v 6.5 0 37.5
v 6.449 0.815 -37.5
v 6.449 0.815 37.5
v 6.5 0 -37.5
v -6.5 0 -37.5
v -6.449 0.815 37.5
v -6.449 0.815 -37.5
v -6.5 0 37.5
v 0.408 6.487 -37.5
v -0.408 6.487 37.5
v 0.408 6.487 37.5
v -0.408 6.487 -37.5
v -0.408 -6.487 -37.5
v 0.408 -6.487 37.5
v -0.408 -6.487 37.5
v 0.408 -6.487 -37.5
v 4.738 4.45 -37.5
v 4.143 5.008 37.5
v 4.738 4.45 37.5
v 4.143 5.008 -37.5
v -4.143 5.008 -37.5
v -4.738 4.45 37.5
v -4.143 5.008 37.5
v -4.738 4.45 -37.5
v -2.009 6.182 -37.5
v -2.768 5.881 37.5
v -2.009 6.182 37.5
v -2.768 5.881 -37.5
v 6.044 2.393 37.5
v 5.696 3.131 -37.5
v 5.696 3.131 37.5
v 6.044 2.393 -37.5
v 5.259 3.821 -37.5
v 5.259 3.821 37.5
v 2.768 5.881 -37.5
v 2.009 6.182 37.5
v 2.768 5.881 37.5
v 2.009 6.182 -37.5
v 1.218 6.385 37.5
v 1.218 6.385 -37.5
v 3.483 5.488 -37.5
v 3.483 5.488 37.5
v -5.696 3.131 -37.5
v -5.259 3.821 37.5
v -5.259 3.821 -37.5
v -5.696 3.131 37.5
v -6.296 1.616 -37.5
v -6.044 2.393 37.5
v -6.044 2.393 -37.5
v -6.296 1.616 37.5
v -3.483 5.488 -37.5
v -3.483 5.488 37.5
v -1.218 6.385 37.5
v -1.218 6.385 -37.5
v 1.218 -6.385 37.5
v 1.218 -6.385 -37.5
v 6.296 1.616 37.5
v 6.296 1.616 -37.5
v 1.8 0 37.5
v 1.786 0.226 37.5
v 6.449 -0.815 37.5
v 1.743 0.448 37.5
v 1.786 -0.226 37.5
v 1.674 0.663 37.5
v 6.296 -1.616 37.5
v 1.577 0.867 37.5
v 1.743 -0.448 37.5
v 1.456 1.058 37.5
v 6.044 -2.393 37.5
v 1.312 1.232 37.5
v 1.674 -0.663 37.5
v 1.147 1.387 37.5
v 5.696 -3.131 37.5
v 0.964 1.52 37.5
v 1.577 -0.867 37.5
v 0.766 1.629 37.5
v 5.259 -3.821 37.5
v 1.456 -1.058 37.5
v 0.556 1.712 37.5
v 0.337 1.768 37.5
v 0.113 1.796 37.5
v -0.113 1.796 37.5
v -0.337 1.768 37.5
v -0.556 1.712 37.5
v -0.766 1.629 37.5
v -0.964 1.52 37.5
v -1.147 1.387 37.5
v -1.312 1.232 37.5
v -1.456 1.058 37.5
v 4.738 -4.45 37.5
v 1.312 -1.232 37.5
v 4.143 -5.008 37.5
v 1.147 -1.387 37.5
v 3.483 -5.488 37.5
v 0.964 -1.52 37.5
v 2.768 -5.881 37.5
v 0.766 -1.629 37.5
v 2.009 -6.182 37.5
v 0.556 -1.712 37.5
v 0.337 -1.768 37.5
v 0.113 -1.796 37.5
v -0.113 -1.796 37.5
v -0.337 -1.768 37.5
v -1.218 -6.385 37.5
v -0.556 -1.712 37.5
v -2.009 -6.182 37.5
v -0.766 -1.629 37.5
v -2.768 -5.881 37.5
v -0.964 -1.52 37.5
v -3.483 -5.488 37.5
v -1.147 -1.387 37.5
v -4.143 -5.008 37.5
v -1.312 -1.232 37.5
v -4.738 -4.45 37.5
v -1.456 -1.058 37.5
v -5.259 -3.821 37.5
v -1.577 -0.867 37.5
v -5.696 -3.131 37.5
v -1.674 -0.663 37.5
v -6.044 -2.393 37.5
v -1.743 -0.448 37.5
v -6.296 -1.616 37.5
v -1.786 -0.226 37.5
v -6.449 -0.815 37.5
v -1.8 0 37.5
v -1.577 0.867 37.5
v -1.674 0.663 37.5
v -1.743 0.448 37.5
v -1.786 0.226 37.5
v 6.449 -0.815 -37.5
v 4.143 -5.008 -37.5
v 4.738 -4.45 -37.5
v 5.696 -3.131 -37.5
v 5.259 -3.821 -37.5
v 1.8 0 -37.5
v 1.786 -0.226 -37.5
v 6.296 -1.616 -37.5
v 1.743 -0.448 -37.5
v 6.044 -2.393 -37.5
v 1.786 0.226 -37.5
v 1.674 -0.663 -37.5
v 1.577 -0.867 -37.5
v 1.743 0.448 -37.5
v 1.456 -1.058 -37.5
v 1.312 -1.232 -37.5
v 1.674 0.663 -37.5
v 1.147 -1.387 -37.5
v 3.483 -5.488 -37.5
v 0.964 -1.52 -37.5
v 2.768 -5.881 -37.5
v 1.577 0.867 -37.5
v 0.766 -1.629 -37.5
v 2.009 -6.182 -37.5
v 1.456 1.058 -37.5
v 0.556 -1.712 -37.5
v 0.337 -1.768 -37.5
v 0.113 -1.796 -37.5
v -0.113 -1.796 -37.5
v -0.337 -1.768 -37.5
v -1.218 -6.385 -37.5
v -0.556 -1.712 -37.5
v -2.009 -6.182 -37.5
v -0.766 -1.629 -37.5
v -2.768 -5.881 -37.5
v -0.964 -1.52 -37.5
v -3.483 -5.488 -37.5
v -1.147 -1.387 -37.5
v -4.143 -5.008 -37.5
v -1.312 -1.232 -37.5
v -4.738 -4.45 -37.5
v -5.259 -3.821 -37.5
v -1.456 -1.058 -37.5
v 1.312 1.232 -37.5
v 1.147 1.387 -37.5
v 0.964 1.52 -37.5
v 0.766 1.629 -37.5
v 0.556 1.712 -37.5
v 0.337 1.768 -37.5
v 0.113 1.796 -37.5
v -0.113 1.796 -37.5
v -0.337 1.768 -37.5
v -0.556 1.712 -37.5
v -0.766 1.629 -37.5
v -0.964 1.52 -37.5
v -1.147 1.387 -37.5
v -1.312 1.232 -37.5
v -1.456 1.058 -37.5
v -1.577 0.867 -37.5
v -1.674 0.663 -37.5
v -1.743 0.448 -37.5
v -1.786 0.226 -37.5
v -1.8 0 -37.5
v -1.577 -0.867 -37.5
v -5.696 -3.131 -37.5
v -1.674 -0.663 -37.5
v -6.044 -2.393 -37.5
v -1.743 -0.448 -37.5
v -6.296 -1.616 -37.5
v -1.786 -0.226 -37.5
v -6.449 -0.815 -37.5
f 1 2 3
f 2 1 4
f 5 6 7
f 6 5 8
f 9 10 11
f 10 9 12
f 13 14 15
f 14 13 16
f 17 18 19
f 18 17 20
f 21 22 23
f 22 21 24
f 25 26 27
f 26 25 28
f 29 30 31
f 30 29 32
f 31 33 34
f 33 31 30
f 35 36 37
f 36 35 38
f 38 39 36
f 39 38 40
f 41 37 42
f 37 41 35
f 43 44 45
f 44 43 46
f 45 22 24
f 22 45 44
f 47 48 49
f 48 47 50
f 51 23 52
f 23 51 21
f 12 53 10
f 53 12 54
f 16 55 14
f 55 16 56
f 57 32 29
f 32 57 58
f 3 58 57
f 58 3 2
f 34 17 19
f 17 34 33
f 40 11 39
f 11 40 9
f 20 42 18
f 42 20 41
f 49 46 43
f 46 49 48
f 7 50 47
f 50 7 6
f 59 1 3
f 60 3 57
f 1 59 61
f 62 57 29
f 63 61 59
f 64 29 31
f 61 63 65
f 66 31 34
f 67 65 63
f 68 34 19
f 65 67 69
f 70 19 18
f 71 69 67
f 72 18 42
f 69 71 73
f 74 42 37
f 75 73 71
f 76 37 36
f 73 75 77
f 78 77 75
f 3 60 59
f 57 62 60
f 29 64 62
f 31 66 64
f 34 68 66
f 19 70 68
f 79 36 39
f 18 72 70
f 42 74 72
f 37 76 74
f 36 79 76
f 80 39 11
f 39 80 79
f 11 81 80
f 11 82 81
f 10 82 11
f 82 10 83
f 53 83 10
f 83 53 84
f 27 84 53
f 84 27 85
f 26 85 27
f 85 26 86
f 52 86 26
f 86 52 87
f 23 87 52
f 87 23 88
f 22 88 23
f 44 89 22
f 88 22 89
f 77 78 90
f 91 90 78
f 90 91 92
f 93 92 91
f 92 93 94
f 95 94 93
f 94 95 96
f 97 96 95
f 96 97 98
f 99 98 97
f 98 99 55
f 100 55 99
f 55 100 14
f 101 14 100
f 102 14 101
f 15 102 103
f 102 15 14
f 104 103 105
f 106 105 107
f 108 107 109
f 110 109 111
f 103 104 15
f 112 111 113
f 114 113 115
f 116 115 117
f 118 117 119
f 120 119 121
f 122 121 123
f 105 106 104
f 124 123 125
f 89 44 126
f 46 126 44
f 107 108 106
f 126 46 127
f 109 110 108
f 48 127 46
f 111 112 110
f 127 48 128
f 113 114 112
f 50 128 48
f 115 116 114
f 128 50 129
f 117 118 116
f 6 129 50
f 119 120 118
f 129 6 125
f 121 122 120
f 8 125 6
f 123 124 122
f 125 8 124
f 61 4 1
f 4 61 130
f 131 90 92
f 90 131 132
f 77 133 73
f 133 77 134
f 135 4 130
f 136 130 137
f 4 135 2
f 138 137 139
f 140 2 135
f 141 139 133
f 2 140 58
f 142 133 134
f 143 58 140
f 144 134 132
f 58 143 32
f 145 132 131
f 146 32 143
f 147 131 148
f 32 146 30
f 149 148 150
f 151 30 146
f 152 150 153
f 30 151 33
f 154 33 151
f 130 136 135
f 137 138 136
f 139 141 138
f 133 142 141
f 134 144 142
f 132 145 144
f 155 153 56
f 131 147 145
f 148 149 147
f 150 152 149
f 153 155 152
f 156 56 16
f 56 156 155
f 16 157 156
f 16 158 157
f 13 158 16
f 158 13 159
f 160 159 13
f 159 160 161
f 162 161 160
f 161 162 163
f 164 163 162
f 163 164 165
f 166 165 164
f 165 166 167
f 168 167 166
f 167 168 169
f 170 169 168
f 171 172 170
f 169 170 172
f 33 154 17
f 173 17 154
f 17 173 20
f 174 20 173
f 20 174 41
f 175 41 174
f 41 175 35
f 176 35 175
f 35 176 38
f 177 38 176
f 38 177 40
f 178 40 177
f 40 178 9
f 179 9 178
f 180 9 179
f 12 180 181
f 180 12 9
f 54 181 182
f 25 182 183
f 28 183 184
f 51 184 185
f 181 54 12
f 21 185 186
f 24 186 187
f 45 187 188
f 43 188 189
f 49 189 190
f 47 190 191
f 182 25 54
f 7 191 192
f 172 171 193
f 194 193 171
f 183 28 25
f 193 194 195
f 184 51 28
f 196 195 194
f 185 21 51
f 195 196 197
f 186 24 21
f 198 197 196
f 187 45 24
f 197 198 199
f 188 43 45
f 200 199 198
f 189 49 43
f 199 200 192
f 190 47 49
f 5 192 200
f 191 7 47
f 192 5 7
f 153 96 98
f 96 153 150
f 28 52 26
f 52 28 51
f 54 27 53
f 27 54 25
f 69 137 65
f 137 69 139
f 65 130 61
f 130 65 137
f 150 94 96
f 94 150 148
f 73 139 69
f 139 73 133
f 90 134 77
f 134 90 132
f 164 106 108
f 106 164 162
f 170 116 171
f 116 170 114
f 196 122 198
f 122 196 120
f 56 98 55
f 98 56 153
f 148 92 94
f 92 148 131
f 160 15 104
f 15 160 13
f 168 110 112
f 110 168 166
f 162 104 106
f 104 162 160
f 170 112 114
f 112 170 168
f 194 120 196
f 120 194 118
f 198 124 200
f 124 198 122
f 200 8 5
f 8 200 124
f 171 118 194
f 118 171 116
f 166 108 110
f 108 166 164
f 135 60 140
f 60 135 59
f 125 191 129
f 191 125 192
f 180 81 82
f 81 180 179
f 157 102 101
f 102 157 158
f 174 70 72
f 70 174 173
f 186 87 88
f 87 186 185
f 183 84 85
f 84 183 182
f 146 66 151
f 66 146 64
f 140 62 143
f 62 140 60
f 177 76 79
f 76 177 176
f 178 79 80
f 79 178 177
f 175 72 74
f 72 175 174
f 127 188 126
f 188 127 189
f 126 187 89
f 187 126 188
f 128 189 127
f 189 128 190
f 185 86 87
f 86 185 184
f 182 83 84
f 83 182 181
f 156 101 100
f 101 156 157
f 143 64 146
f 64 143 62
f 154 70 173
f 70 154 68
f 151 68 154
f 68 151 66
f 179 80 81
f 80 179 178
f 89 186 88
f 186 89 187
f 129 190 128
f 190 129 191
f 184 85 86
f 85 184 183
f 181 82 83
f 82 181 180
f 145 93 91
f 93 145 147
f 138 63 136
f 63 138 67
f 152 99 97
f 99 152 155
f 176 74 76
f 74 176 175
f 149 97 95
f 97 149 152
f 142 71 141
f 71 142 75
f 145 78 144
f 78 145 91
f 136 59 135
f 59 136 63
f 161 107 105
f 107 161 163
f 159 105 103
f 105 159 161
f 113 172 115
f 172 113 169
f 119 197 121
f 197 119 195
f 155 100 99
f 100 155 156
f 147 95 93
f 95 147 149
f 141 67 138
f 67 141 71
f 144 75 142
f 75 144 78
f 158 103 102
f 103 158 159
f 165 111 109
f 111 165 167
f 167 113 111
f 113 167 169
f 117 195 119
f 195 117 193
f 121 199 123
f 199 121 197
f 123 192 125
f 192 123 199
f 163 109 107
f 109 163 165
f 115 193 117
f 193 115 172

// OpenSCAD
$fn = 50;


difference() {
	union() {
		translate(v = [0, 0, -37.5000000000]) {
			cylinder(h = 75, r = 6.5000000000);
		}
	}
	union() {
		translate(v = [0, 0, -100.0000000000]) {
			cylinder(h = 200, r = 1.8000000000);
		}
	}
}
